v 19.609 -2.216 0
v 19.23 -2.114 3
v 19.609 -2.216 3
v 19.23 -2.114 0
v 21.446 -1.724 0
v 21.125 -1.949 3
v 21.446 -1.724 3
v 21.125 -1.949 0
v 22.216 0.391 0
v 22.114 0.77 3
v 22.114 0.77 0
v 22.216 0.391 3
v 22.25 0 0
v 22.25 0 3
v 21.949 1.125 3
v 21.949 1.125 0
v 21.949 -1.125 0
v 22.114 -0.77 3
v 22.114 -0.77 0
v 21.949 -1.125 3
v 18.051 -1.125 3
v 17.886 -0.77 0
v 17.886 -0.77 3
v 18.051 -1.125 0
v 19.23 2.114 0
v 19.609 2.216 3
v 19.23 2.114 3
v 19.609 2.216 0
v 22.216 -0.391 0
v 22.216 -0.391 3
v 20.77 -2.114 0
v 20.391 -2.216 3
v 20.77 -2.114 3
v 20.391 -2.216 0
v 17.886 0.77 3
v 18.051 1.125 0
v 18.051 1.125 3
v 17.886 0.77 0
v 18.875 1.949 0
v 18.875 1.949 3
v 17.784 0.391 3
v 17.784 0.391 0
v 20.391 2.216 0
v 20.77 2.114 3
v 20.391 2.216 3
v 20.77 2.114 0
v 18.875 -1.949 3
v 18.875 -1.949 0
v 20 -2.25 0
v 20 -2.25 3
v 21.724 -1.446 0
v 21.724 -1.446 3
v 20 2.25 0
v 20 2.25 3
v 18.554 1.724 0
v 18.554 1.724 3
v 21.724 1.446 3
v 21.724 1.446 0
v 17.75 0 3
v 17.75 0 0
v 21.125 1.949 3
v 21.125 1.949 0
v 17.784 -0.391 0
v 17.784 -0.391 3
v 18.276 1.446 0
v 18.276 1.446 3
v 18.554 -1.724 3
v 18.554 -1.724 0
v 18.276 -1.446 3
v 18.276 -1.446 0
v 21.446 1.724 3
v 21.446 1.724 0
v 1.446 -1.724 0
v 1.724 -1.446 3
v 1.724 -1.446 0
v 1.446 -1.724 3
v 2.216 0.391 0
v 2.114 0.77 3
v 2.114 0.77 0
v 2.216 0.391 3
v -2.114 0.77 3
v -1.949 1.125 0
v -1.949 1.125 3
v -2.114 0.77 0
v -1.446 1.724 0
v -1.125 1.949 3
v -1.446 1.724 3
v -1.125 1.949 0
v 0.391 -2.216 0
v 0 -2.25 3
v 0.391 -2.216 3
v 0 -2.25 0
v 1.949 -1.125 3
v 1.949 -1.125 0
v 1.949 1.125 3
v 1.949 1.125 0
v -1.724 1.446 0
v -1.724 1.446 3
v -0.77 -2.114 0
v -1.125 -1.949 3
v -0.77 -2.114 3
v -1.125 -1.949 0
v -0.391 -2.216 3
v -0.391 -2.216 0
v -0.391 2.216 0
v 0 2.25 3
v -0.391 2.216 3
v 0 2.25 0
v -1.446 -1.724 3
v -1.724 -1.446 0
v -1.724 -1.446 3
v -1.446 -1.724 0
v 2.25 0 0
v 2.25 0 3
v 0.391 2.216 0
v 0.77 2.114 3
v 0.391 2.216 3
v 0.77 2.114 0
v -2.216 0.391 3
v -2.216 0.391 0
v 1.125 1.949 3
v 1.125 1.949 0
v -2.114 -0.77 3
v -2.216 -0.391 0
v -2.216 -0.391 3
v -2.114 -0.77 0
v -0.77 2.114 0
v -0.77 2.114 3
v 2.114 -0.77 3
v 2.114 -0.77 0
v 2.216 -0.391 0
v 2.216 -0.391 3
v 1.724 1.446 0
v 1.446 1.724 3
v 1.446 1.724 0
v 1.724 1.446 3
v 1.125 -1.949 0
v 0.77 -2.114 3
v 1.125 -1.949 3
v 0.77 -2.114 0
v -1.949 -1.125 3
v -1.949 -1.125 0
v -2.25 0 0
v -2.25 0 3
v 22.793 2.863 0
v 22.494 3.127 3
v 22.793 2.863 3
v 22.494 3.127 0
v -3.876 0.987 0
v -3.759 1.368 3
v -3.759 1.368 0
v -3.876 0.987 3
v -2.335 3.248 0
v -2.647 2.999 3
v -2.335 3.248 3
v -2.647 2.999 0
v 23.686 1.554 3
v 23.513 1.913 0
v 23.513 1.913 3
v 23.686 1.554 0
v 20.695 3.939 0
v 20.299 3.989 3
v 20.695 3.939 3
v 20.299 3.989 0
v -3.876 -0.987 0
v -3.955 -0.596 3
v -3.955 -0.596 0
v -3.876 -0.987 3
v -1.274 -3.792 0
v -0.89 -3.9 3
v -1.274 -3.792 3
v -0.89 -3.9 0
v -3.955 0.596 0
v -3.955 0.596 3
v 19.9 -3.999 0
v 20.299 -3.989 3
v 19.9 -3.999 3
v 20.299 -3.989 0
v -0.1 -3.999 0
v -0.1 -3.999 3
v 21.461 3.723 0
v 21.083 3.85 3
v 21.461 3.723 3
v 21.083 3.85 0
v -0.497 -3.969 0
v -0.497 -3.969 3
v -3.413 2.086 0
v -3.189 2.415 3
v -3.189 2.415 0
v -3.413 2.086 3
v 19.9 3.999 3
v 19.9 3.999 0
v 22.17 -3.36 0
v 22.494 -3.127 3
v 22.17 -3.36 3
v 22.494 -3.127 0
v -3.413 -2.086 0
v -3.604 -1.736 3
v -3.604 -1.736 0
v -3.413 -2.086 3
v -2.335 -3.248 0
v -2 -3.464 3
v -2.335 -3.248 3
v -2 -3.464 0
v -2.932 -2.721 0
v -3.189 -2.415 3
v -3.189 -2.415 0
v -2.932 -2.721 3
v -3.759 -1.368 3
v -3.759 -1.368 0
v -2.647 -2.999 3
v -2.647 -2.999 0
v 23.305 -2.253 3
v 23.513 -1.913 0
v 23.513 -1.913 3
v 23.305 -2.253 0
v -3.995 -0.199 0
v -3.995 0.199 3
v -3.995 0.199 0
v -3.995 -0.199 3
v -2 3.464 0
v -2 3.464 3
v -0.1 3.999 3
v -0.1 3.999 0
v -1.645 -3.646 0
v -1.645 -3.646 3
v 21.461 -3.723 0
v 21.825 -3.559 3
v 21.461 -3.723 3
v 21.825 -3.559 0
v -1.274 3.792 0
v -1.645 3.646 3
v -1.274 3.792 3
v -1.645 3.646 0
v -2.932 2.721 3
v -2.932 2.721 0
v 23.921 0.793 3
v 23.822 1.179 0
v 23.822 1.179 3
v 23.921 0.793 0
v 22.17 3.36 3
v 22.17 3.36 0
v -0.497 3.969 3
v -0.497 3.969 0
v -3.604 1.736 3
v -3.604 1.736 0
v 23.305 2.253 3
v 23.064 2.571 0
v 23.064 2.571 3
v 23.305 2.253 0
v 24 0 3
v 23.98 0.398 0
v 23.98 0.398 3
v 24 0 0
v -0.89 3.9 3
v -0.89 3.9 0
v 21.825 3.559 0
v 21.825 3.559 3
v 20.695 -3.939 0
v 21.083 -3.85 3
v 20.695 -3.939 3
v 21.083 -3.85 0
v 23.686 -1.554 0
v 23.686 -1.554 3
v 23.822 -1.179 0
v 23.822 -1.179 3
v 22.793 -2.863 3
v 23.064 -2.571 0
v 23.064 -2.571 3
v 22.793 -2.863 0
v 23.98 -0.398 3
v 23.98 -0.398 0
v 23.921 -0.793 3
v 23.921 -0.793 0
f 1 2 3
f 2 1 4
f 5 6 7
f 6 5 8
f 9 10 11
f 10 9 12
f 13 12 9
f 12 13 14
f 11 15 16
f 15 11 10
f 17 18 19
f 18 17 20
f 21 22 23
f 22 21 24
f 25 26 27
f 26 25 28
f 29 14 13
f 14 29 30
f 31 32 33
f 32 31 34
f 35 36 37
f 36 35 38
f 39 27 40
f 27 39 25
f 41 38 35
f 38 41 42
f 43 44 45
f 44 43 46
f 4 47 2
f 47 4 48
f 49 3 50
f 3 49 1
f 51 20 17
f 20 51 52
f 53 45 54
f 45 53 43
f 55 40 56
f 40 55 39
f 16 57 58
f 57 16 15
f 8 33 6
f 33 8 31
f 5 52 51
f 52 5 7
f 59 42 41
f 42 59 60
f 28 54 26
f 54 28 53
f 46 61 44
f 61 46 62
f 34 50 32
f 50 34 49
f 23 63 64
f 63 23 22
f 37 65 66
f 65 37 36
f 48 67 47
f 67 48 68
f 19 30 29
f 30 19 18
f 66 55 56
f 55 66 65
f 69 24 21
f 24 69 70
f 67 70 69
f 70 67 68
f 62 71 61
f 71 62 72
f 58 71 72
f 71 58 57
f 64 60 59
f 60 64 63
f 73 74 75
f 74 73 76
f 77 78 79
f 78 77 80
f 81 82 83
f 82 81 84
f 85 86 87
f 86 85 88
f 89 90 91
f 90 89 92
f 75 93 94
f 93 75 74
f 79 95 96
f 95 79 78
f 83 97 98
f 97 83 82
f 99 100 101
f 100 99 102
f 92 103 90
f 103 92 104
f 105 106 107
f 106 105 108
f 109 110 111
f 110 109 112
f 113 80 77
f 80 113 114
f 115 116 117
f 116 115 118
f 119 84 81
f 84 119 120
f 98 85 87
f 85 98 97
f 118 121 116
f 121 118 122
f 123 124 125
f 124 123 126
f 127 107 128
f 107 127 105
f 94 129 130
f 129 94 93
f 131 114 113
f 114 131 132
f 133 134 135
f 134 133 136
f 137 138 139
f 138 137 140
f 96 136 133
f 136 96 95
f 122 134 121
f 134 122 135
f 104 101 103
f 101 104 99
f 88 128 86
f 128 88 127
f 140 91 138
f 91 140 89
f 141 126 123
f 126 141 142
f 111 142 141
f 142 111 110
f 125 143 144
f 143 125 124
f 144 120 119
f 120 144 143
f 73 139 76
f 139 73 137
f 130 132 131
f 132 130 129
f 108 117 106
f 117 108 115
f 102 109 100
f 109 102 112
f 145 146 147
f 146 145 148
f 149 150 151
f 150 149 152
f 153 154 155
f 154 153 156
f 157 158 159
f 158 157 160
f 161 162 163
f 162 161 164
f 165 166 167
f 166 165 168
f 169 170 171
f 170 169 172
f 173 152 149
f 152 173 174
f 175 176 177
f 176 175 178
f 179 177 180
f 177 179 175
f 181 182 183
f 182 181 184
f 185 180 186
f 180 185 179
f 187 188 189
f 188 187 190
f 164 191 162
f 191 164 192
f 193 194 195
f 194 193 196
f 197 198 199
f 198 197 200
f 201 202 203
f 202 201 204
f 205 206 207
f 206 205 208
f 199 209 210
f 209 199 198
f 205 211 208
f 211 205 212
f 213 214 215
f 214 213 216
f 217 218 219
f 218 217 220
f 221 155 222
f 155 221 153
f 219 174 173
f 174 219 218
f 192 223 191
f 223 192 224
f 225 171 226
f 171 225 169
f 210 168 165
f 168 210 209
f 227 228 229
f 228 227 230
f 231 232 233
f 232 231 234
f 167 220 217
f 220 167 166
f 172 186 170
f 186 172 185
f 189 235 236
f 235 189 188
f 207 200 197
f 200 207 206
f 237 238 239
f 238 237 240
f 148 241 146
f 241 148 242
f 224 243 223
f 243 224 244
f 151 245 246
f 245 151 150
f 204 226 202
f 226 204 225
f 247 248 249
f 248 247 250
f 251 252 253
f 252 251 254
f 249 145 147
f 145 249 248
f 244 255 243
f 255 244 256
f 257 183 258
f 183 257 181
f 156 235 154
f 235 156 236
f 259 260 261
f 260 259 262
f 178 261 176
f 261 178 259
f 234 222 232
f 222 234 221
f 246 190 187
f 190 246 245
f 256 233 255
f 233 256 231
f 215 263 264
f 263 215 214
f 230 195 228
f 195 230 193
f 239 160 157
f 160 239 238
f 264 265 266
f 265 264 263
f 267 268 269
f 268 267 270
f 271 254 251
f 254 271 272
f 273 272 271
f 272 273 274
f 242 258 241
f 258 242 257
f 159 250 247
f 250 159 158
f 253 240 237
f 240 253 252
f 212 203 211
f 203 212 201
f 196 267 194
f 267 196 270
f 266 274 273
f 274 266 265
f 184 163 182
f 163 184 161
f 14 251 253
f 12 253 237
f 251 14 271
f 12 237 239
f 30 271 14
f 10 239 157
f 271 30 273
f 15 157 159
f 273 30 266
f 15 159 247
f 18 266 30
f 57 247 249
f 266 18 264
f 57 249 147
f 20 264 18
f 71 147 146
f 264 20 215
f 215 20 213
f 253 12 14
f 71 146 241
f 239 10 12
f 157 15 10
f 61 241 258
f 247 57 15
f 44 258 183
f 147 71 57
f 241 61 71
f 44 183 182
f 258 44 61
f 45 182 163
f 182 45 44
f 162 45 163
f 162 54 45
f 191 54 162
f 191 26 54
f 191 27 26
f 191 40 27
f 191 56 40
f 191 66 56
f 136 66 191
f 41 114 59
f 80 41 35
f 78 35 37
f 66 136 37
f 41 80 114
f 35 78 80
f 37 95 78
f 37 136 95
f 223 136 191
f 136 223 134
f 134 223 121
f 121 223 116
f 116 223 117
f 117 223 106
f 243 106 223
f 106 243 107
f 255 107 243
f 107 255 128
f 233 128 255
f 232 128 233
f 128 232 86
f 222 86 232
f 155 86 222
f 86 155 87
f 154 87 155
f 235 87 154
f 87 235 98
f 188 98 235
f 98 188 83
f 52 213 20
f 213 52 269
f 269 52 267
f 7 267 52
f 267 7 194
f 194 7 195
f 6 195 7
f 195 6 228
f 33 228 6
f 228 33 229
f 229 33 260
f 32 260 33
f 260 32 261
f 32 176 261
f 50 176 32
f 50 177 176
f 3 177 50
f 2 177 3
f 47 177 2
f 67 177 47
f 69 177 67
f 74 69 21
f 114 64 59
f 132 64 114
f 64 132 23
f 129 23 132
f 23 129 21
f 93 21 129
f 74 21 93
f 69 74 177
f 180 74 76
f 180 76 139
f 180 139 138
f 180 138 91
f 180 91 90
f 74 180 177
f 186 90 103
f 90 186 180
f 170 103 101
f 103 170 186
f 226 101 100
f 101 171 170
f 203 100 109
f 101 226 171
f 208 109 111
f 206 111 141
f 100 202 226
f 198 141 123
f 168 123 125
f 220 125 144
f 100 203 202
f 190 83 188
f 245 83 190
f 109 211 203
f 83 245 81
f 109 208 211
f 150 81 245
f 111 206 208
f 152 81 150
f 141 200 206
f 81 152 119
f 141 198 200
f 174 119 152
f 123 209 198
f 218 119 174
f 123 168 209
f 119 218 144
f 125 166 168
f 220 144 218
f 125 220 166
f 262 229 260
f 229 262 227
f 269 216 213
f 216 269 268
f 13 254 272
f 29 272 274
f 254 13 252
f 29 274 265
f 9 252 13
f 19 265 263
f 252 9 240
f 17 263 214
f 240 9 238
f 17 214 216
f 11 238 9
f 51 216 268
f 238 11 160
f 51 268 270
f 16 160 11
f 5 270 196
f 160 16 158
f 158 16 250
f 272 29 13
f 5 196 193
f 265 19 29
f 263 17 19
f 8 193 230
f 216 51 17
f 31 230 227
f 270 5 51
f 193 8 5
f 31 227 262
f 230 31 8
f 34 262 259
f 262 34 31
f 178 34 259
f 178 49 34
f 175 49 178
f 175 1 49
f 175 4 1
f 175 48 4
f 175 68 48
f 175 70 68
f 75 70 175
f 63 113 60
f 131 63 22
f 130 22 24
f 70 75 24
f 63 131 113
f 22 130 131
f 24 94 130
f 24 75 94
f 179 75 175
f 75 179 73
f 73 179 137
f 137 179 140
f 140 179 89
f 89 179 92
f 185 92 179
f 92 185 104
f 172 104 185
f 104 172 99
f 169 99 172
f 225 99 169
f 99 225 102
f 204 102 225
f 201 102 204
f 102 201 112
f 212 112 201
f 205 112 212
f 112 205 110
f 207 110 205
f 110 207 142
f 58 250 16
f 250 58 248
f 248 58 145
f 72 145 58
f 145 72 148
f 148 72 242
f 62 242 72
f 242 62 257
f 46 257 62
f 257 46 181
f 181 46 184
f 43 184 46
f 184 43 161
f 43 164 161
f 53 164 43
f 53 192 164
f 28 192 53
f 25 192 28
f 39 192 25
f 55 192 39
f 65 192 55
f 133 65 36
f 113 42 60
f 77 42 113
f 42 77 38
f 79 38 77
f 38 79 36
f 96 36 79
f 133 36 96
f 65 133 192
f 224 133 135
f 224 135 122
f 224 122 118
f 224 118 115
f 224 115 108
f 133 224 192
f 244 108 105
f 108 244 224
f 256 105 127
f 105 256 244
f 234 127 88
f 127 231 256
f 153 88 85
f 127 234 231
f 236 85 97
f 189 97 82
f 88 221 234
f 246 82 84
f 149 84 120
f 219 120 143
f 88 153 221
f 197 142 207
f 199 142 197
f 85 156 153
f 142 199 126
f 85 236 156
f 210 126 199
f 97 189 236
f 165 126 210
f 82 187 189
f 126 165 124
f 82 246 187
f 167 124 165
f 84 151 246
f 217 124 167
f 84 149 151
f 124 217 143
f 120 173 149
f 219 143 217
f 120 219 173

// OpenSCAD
$fa = 1;
$fs = 0.4;

thickness=3;

module linkage (length) {
  difference() {
    hull() {
      translate([length, 0, 0])
      cylinder(d=8, h=thickness);
      cylinder(d=8, h=thickness);
    }
    translate([0, 0, -1]) {
      translate([length, 0, 0])
      cylinder(d=4.5, h=thickness + 2);
      cylinder(d=4.5, h=thickness + 2);
    }
  }
}

linkage(20);
